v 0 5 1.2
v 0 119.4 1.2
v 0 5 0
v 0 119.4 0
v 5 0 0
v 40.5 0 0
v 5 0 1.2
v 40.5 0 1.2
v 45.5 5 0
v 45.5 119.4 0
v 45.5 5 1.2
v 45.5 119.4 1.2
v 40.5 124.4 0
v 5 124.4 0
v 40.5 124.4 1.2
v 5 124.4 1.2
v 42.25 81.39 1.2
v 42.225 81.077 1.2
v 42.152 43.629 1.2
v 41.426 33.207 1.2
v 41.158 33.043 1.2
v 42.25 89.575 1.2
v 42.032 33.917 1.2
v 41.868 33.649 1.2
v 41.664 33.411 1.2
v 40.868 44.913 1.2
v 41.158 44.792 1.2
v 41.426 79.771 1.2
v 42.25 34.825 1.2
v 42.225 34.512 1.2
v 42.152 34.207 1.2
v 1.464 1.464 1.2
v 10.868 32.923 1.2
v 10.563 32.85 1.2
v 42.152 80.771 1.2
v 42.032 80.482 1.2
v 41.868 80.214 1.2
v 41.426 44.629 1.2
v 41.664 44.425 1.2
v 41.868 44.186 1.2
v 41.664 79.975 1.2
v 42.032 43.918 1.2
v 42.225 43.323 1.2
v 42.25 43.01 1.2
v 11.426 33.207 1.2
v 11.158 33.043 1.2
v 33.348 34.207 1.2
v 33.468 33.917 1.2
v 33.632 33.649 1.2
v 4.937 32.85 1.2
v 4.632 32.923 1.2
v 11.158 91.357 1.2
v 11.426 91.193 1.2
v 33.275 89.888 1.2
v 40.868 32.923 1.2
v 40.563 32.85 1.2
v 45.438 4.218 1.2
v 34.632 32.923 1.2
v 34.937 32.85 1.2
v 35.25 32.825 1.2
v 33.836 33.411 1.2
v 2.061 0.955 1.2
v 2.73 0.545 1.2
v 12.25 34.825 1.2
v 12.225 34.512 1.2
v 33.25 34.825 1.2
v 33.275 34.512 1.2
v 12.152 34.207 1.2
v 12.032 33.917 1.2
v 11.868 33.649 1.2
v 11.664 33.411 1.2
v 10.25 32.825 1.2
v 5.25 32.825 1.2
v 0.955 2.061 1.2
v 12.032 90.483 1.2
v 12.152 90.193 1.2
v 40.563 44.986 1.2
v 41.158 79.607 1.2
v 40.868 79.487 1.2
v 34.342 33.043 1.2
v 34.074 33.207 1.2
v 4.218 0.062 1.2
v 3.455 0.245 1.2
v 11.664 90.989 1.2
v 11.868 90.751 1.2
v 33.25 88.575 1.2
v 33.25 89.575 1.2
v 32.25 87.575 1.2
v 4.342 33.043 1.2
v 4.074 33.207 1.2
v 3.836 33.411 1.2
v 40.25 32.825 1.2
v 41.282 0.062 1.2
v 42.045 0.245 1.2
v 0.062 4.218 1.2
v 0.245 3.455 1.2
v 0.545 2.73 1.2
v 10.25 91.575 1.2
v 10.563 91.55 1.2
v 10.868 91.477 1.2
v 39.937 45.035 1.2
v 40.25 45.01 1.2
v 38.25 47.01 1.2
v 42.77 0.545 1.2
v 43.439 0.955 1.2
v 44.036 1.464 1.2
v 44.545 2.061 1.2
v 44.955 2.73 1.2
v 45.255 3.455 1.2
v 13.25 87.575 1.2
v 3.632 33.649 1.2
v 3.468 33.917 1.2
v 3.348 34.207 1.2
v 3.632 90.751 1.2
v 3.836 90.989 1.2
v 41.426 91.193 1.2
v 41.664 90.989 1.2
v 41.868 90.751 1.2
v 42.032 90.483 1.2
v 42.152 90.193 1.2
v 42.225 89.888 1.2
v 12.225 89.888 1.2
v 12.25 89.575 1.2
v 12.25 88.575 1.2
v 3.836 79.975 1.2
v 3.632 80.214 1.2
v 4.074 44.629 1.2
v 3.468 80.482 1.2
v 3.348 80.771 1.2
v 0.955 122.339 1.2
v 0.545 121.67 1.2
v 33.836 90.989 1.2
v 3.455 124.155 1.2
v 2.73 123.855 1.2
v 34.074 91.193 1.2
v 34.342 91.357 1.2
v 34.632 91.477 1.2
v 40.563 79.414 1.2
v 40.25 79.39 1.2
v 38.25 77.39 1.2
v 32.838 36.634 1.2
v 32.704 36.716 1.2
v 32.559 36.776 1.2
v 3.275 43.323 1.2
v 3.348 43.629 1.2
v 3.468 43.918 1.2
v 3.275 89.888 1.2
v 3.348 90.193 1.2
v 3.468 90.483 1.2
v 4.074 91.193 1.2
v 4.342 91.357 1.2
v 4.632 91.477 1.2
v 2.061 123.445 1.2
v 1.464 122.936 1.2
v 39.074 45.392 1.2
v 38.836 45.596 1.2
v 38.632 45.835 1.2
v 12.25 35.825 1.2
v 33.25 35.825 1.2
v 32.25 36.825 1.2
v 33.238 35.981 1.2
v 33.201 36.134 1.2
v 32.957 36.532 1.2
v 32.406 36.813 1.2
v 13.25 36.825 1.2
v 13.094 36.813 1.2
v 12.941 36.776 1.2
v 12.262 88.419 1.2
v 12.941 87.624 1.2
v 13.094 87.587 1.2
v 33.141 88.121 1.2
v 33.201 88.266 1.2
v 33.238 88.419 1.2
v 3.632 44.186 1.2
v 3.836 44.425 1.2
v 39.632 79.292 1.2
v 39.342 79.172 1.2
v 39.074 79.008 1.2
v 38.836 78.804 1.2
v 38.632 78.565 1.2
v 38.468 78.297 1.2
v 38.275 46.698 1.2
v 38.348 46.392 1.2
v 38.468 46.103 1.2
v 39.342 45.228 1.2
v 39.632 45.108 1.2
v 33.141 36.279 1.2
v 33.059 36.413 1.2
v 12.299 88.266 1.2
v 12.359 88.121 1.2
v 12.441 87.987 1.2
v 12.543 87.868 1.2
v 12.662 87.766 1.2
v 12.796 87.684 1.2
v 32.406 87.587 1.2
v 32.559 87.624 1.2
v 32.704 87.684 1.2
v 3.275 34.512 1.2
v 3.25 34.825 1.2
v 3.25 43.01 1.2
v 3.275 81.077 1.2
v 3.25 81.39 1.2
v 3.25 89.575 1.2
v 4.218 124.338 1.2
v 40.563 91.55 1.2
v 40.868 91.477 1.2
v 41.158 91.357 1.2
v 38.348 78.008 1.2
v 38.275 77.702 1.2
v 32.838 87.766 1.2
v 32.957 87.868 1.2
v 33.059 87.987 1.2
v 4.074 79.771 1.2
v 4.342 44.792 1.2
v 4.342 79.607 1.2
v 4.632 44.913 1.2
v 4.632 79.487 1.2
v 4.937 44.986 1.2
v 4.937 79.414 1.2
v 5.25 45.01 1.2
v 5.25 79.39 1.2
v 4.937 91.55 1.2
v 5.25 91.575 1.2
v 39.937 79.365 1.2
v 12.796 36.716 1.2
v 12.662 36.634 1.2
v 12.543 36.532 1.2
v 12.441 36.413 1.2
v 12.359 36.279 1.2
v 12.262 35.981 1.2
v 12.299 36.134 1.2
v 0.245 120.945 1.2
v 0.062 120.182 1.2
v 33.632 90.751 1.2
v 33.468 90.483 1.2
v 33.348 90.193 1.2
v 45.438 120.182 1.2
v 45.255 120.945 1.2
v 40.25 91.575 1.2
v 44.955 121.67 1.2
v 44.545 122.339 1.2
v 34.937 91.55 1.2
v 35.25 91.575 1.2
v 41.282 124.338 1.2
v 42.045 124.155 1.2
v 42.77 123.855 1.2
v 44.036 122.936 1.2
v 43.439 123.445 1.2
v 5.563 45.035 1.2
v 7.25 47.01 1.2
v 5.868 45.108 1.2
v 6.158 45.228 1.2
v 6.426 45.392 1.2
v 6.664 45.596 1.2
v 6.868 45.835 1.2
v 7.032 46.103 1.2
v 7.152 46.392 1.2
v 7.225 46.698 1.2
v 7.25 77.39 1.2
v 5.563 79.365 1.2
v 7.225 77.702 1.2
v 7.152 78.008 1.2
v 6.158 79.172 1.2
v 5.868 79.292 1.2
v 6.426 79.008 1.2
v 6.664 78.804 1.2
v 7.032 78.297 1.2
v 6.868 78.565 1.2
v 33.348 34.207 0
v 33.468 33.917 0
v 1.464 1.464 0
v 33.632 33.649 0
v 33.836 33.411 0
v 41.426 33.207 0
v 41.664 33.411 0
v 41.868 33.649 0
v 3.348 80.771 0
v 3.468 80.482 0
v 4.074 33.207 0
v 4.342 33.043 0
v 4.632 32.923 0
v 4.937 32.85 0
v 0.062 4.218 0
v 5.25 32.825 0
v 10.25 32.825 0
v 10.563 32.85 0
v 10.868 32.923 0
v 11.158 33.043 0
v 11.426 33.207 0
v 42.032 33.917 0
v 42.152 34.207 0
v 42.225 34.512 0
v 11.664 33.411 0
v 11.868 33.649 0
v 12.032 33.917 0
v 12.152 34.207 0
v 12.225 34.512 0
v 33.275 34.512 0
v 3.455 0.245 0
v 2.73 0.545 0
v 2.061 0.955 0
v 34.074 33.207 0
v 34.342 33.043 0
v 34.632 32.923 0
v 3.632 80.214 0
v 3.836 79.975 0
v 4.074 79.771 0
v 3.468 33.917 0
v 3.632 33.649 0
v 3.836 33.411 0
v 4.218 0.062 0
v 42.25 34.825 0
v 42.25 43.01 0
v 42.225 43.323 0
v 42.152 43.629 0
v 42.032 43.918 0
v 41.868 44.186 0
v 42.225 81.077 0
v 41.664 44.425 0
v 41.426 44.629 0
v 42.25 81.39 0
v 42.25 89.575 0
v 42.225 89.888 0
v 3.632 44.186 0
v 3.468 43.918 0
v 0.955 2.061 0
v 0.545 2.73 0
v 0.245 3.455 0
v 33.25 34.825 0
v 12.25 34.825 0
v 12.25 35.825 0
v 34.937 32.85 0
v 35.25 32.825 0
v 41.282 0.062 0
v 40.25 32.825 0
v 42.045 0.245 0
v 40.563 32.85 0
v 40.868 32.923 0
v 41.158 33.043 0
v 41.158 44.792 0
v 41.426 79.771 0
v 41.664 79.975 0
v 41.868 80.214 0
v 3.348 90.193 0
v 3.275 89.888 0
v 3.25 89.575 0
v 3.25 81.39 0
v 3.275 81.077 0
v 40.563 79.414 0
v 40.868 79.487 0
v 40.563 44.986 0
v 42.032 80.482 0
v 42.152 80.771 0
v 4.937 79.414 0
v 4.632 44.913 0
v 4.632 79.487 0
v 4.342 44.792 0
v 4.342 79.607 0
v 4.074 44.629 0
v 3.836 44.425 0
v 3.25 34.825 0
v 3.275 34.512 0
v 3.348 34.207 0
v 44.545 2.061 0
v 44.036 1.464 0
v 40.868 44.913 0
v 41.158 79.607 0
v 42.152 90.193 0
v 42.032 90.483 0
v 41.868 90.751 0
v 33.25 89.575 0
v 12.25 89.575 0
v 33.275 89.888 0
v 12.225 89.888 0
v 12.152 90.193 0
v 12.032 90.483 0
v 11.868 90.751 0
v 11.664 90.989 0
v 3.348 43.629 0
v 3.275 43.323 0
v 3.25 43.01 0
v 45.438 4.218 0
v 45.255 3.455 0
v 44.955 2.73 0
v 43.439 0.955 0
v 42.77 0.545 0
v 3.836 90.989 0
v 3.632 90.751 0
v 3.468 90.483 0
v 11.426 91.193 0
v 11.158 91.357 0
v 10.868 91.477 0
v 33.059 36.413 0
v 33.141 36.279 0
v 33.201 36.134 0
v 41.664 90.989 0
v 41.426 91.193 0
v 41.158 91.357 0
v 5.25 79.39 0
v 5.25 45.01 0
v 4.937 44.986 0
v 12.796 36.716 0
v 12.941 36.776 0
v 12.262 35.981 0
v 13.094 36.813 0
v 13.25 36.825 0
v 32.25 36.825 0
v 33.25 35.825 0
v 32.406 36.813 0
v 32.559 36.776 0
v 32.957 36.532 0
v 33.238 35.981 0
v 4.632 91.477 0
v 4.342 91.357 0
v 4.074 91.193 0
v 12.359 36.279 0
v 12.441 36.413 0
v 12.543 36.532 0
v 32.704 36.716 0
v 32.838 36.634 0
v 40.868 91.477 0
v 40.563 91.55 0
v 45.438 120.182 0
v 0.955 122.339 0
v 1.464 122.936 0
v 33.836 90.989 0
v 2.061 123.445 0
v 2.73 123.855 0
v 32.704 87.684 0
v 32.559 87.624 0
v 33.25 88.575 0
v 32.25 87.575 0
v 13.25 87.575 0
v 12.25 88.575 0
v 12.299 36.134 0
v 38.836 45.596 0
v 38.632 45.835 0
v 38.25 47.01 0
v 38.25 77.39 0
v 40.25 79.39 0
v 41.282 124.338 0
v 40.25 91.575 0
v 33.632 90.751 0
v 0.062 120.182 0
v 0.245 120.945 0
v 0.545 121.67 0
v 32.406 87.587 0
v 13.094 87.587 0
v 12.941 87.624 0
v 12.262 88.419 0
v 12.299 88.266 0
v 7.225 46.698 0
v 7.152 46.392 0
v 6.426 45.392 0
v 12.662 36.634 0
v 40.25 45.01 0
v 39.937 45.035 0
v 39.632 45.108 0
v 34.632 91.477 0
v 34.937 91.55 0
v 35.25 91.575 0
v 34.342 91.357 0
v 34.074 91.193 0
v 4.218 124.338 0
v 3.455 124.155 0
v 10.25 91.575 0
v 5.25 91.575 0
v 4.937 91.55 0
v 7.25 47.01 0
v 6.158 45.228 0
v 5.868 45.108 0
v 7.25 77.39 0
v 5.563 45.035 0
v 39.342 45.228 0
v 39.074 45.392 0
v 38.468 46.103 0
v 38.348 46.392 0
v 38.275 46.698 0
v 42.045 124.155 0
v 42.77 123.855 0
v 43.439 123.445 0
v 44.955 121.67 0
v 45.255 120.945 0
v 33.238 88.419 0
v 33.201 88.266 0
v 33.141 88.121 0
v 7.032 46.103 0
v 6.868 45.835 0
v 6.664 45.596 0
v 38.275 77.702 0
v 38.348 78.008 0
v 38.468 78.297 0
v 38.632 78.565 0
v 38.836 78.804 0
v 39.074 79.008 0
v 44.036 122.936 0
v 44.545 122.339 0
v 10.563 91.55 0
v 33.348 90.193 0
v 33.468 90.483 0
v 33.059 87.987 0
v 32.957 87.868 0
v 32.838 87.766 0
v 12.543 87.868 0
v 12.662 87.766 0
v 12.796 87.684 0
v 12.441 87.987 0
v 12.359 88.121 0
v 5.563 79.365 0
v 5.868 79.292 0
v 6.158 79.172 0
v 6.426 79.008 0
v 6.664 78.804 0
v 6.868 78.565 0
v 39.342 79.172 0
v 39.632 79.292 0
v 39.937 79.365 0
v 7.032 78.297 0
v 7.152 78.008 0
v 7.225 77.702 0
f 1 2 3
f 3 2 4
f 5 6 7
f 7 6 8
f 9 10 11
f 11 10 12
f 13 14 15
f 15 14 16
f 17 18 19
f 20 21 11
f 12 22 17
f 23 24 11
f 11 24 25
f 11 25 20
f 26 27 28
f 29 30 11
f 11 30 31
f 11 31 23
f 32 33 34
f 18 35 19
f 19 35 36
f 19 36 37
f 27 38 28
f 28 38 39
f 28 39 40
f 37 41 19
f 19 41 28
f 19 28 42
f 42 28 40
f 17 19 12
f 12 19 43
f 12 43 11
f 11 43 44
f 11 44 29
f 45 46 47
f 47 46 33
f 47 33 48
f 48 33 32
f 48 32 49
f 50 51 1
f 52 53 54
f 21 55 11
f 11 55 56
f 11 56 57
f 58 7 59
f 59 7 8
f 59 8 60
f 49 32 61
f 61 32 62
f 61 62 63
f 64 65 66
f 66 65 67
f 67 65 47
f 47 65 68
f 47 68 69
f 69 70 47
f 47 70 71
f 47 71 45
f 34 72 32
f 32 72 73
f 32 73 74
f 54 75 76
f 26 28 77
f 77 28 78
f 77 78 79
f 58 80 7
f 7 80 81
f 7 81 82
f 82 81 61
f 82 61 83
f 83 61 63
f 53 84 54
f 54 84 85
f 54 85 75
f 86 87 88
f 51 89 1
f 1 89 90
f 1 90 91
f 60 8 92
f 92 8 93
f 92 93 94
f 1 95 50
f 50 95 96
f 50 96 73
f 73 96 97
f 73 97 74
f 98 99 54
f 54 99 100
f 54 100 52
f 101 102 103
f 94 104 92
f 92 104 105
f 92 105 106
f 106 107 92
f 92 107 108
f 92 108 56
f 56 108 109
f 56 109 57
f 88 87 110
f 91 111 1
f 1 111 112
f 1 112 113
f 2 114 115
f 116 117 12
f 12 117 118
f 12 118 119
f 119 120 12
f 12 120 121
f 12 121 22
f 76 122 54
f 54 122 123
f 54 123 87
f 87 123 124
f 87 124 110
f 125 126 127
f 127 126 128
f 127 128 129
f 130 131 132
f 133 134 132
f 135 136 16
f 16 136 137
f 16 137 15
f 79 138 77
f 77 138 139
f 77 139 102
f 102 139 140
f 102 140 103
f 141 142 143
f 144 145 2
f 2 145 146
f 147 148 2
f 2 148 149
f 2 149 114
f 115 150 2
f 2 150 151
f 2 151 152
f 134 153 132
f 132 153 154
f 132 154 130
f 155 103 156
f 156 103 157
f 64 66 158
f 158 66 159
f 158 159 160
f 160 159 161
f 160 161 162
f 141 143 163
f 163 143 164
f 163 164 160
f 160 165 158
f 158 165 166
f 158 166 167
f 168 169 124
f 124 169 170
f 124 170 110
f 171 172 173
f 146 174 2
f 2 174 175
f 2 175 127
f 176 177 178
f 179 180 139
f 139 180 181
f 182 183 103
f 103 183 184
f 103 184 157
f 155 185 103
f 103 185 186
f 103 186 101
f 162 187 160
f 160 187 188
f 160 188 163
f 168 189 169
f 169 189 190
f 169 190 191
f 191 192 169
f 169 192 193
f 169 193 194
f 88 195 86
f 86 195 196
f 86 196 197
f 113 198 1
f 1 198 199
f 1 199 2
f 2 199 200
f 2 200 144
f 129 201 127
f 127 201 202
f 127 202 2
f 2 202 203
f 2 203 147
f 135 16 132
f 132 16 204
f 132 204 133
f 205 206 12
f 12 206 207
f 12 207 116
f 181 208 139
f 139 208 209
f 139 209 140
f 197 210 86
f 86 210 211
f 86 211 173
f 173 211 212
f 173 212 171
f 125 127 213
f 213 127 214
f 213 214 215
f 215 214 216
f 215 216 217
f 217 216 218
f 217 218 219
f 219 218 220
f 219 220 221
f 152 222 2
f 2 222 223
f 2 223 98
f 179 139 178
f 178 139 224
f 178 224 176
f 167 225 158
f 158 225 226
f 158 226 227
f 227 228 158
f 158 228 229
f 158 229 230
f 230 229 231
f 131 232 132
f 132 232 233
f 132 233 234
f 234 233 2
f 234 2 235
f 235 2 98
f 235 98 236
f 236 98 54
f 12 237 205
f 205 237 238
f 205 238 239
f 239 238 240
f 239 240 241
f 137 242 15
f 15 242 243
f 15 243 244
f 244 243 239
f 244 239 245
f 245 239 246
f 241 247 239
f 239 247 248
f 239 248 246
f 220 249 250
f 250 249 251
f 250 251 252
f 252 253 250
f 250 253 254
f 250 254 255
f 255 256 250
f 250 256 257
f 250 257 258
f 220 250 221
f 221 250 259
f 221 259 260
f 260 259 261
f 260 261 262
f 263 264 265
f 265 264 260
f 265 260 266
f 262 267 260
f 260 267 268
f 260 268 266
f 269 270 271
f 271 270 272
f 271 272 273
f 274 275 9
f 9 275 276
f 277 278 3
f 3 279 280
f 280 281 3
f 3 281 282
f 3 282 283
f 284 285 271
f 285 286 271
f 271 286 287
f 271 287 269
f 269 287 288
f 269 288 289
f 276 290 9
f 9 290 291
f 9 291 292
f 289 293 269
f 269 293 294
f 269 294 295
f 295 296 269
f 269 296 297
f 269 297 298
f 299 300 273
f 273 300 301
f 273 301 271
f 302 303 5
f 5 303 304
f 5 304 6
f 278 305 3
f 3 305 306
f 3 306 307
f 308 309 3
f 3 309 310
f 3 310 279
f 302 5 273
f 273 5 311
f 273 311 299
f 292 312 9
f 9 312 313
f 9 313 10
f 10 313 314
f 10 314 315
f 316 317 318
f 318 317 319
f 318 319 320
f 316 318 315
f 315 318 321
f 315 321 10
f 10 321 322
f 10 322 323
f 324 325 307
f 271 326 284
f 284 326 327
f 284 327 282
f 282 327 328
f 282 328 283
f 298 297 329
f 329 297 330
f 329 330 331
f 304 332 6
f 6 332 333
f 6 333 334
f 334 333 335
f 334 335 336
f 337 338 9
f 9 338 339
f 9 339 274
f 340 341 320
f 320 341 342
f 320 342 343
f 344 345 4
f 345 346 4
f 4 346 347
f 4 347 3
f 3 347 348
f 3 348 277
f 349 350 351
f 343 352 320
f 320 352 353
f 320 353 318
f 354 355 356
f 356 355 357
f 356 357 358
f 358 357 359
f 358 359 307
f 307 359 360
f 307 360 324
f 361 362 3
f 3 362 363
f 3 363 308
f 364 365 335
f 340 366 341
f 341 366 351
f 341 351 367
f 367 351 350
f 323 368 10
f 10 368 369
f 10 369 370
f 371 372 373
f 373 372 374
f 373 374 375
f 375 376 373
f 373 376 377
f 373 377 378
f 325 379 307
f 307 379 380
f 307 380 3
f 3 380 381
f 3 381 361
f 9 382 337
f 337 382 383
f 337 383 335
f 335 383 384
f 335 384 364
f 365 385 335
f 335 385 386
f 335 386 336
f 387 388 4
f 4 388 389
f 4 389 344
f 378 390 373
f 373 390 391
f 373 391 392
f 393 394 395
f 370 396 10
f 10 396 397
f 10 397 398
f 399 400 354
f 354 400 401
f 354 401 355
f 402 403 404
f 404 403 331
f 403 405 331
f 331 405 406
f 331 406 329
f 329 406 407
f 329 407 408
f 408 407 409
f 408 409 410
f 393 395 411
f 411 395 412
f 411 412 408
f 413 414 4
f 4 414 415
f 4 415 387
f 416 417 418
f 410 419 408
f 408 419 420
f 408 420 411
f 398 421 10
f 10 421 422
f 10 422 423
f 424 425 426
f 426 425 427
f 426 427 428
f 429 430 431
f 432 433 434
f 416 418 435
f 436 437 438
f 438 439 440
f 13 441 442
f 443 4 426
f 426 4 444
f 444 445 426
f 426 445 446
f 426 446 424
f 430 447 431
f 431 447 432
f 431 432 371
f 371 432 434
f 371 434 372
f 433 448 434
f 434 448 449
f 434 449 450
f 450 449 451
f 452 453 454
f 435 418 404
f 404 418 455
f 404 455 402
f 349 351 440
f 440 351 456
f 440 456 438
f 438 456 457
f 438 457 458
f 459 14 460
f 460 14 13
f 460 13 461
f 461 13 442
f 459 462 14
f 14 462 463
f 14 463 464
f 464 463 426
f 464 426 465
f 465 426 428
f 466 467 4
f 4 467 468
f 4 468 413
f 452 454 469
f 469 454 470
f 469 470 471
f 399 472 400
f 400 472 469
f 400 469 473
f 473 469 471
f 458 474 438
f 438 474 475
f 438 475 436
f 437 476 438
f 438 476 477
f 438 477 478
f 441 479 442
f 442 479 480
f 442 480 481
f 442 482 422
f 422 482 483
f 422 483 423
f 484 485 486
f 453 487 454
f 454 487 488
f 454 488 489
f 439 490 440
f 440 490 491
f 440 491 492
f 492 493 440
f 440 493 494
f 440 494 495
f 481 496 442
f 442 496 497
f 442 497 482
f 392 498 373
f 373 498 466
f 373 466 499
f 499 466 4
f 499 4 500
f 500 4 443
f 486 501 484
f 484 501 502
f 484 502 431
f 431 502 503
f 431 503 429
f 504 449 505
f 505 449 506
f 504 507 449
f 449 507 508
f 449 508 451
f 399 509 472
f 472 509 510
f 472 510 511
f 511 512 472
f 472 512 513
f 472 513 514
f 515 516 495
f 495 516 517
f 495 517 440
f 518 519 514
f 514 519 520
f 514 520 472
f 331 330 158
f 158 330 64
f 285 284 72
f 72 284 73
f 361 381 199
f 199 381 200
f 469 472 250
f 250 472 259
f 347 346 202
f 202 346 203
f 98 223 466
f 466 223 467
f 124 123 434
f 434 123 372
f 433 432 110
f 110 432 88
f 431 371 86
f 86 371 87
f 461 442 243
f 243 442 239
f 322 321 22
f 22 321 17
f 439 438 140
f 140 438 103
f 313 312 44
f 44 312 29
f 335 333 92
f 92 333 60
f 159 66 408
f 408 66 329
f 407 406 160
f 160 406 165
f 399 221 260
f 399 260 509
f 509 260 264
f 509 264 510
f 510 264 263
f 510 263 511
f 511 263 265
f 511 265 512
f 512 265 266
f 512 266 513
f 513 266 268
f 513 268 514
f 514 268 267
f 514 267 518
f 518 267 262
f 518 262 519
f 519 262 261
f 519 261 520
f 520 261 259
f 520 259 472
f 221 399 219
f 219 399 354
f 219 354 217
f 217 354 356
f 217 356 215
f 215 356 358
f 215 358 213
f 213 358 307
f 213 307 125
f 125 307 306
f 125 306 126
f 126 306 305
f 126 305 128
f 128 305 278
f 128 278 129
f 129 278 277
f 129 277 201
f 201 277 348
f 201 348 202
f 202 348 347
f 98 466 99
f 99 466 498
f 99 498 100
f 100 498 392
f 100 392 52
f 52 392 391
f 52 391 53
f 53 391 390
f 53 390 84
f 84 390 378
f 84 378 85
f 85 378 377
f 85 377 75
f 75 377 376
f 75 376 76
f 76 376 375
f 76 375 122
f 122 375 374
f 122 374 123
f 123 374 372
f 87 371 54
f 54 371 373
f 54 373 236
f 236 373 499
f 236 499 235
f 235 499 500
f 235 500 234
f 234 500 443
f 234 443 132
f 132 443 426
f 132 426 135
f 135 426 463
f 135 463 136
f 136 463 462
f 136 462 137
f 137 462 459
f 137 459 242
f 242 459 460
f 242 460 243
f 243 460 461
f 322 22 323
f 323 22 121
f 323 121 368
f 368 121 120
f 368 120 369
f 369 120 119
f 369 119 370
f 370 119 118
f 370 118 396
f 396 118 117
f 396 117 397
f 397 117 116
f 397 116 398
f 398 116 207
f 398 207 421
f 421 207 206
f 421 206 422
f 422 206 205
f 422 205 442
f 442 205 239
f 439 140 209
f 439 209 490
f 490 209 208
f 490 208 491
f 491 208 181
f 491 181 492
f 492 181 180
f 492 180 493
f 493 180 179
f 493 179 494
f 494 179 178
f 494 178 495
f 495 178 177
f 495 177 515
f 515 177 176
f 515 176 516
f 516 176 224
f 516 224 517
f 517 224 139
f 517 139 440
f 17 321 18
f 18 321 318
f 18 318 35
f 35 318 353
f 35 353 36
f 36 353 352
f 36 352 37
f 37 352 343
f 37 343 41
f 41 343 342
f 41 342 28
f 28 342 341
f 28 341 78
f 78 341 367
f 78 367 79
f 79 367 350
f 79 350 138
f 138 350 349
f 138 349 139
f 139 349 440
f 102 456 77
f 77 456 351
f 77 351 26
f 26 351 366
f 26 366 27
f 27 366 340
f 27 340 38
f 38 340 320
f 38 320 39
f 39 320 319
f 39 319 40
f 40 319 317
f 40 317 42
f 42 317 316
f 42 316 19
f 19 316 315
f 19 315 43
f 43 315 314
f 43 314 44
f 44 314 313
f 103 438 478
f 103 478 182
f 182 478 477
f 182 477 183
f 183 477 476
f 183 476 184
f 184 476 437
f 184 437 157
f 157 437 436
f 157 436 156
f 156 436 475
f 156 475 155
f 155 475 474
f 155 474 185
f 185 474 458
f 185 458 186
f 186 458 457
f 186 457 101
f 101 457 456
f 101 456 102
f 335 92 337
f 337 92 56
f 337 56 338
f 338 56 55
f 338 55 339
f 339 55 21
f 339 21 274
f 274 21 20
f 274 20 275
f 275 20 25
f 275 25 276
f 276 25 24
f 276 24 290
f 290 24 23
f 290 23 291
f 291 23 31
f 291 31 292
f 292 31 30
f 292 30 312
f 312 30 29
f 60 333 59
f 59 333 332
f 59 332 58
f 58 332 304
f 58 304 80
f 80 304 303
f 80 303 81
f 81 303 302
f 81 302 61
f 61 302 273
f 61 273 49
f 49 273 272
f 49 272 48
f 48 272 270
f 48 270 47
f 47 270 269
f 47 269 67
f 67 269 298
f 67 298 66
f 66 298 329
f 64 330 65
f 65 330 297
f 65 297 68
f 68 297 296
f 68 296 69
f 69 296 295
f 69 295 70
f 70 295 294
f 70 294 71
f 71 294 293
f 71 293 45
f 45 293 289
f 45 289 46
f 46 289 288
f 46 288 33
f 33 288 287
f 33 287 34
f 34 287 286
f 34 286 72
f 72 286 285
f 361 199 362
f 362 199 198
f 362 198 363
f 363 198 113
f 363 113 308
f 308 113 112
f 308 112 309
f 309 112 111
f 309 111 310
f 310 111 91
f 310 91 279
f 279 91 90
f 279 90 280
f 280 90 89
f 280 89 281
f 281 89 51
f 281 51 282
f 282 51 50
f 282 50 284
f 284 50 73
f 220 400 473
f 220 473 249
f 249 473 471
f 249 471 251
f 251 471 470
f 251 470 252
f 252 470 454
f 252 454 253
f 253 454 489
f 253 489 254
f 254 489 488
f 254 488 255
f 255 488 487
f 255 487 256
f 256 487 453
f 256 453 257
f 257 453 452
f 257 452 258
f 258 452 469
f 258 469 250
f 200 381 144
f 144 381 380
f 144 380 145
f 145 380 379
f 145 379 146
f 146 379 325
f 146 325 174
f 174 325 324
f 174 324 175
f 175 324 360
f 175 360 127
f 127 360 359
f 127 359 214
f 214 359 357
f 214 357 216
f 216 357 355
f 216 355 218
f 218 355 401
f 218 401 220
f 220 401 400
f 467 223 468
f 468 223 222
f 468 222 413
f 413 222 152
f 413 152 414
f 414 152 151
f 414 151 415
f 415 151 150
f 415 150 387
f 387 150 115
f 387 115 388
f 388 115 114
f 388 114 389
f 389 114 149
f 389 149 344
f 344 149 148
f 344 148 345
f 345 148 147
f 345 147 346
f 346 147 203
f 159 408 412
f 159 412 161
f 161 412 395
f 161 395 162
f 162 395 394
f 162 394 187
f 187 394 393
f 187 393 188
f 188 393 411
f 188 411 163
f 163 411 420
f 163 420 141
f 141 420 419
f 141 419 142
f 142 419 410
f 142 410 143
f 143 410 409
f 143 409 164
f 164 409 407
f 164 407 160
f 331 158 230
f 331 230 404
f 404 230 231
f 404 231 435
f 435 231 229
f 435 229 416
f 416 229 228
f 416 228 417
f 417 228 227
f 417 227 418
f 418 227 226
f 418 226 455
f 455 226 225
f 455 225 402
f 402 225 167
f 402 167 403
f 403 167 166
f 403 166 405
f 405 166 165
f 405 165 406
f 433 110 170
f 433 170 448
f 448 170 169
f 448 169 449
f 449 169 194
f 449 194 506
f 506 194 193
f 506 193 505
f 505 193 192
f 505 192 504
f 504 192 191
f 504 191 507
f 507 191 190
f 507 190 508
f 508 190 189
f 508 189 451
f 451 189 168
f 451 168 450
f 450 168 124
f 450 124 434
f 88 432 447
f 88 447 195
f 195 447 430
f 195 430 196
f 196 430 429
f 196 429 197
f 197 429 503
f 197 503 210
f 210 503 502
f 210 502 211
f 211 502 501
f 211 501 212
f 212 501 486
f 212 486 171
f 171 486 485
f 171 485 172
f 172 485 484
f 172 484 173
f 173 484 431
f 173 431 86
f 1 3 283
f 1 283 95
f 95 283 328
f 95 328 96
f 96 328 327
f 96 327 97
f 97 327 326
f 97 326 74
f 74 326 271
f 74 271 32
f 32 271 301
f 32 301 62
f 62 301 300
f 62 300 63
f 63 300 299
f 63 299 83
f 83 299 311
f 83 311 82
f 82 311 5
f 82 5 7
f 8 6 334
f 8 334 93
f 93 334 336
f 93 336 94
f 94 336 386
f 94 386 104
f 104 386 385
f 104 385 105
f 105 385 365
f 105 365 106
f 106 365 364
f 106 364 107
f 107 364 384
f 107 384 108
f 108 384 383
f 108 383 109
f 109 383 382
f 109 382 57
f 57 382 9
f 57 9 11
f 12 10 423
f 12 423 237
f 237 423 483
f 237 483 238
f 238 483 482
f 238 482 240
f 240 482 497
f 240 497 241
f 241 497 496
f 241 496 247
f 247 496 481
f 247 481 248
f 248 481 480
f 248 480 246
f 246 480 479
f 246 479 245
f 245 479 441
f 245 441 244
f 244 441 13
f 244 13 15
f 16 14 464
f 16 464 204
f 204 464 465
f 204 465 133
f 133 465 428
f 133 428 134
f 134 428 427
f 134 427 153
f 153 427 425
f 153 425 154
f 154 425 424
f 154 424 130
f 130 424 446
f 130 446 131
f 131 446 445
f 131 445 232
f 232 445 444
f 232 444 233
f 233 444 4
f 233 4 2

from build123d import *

# Parameters (mm, degrees)
SKETCH1_W           = 45.5
SKETCH1_H           = 124.4
BOSS_EXTRUDE1_DEPTH = 1.2
SKETCH2_W           = 5
SKETCH2_H           = 8.185483871
CUT_EXTRUDE1_DEPTH  = 1.6
FILLET1_R           = 2
FILLET2_R           = 1
FILLET3_R           = 5


with BuildPart() as part:
    # Sketch1 → Boss-Extrude1 (new body)
    with BuildSketch(Plane.XY):
        with Locations((22.75, 62.2)):
            Rectangle(SKETCH1_W, SKETCH1_H)
    extrude(amount=BOSS_EXTRUDE1_DEPTH)

    # Sketch2 → Cut-Extrude1 (cut)
    with BuildSketch(Plane.XY.offset(1.2)):
        Polygon((7.25, 87.575), (12.25, 87.575), (12.25, 91.575), (3.25, 91.575), (3.25, 79.389516129), (7.25, 79.389516129), align=None)
        with Locations((9.75, 83.482258065)):
            Rectangle(SKETCH2_W, SKETCH2_H)
        Polygon((33.25, 79.389516129), (33.25, 87.575), (12.25, 87.575), (12.25, 79.389516129), (7.25, 79.389516129), (7.25, 45.010483871), (12.25, 45.010483871), (12.25, 36.825), (33.25, 36.825), (33.25, 45.010483871), (38.25, 45.010483871), (38.25, 79.389516129), align=None)
        with Locations((35.75, 83.482258065)):
            Rectangle(SKETCH2_W, SKETCH2_H)
        Polygon((42.25, 79.389516129), (42.25, 91.575), (33.25, 91.575), (33.25, 87.575), (38.25, 87.575), (38.25, 79.389516129), align=None)
        Polygon((42.25, 45.010483871), (38.25, 45.010483871), (38.25, 36.825), (33.25, 36.825), (33.25, 32.825), (42.25, 32.825), align=None)
        with Locations((35.75, 40.917741936)):
            Rectangle(SKETCH2_W, SKETCH2_H)
        Polygon((7.25, 36.825), (7.25, 45.010483871), (3.25, 45.010483871), (3.25, 32.825), (12.25, 32.825), (12.25, 36.825), align=None)
        with Locations((9.75, 40.917741936)):
            Rectangle(SKETCH2_W, SKETCH2_H)
    extrude(amount=-CUT_EXTRUDE1_DEPTH, mode=Mode.SUBTRACT)

    # Fillet1
    fillet1_edges = [part.edges().sort_by_distance(p)[0] for p in [
        (3.25, 79.389516129, 0.6),
        (12.25, 91.575, 0.6),
        (33.25, 91.575, 0.6),
        (42.25, 91.575, 0.6),
        (42.25, 79.389516129, 0.6),
        (38.25, 79.389516129, 0.6),
        (38.25, 45.010483871, 0.6),
        (42.25, 45.010483871, 0.6),
        (42.25, 32.825, 0.6),
        (33.25, 32.825, 0.6),
        (12.25, 32.825, 0.6),
        (3.25, 32.825, 0.6),
        (3.25, 45.010483871, 0.6),
        (7.25, 45.010483871, 0.6),
        (7.25, 79.389516129, 0.6),
        (3.25, 91.575, 0.6),
    ]]
    fillet(fillet1_edges, radius=FILLET1_R - 0.0001)  # a hair under: the kernel refuses the full size

    # Fillet2
    fillet2_edges = [part.edges().sort_by_distance(p)[0] for p in [
        (12.25, 36.825, 0.6),
        (12.25, 87.575, 0.6),
        (33.25, 87.575, 0.6),
        (33.25, 36.825, 0.6),
    ]]
    fillet(fillet2_edges, radius=FILLET2_R)

    # Fillet3
    fillet3_edges = [part.edges().sort_by_distance(p)[0] for p in [
        (0, 124.4, 0.6),
        (45.5, 124.4, 0.6),
        (45.5, 0, 0.6),
        (0, 0, 0.6),
    ]]
    fillet(fillet3_edges, radius=FILLET3_R)


solid = part.part
